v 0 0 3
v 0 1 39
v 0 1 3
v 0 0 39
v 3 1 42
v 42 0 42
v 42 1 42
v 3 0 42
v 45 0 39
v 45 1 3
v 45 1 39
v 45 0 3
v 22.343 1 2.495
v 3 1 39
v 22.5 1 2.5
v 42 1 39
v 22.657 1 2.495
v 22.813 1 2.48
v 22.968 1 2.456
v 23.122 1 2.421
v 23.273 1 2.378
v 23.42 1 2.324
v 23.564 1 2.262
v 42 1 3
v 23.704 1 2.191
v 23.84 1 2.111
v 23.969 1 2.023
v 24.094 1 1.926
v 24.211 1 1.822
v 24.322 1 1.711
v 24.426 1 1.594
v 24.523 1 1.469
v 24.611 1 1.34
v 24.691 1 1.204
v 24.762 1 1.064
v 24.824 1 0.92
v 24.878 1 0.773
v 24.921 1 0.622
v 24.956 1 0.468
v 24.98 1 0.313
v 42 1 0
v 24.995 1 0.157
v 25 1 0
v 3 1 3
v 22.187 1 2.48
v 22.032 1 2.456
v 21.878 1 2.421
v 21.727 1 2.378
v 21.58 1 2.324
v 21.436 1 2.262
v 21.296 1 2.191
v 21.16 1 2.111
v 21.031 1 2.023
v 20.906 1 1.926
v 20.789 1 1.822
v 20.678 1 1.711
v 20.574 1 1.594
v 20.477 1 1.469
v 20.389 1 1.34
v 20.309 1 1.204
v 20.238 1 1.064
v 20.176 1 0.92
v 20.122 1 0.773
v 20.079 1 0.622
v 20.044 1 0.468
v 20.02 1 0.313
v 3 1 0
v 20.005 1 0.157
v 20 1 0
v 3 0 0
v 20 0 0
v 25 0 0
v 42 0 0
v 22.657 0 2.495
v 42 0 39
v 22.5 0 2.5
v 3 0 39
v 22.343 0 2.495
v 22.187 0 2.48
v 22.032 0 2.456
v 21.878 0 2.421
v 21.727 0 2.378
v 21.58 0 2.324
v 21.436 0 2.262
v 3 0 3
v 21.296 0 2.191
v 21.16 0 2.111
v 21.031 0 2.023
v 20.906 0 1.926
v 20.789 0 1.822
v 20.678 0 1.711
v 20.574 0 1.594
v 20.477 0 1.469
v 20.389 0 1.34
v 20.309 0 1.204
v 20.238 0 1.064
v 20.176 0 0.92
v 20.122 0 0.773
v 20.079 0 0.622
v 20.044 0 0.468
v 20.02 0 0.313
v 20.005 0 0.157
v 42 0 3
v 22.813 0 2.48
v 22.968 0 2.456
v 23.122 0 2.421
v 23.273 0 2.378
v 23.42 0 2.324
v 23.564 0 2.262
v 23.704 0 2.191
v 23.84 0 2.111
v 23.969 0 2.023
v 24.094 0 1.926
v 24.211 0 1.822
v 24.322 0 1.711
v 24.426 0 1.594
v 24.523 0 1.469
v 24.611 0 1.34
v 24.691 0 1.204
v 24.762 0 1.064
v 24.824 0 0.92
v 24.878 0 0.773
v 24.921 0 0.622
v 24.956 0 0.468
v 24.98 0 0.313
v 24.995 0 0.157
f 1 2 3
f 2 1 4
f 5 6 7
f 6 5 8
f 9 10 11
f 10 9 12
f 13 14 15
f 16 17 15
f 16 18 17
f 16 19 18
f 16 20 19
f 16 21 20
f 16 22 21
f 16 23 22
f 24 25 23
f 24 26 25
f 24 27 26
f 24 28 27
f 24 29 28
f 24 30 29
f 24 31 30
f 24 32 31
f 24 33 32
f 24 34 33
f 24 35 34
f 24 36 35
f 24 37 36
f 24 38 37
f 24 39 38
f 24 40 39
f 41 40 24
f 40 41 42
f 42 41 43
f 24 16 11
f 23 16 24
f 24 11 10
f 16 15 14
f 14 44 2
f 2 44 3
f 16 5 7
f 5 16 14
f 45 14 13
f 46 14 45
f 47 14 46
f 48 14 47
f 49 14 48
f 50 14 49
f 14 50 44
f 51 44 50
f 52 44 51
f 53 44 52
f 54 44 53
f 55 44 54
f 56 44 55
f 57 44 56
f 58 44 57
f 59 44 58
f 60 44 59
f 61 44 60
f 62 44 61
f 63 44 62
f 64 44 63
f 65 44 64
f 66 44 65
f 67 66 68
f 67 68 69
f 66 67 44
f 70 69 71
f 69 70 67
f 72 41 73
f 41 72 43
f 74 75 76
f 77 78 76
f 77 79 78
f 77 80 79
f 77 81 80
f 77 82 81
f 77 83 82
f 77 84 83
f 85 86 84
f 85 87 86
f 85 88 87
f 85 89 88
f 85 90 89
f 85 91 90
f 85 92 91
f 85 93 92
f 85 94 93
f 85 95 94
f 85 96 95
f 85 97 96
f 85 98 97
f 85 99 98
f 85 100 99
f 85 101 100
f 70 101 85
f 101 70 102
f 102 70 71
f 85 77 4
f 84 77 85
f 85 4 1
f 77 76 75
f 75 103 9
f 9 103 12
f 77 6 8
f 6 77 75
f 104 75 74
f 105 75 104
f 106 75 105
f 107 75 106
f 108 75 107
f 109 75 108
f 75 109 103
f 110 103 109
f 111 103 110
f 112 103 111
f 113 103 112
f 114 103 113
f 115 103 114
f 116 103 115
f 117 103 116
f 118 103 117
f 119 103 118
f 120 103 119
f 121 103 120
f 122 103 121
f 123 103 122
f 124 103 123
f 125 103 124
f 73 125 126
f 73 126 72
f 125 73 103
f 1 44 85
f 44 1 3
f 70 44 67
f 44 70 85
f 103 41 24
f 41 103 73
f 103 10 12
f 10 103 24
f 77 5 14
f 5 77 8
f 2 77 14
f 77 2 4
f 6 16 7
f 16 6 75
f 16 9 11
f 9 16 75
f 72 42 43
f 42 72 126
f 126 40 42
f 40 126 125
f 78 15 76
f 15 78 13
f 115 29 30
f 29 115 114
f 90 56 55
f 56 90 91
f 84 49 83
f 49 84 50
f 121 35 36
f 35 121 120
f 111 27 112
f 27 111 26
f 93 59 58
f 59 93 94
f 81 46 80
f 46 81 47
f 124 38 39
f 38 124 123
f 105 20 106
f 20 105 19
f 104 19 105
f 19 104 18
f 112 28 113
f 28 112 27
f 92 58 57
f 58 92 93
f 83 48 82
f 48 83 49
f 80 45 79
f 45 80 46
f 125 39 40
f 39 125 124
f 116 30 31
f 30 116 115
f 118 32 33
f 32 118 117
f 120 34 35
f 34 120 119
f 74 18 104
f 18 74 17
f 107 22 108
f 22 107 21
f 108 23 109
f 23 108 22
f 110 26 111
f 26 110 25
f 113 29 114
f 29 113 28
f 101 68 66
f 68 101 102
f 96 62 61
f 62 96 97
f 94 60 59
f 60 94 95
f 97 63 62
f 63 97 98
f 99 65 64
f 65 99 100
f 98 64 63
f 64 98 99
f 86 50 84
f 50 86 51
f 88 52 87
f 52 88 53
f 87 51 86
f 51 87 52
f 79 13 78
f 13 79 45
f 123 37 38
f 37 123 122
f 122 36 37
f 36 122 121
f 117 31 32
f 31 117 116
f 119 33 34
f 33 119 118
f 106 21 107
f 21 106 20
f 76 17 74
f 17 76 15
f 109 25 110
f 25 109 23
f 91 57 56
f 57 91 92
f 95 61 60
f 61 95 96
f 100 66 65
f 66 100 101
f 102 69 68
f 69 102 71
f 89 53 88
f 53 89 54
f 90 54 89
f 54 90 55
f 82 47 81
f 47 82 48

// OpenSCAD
$fn=100;
difference()
{
translate([0,0,0])cube([45,1,42]);
color("black")translate([-1,-1,-1])cube([4,3,4]);
color("black")translate([42,-1,-1])cube([4,3,4]);
color("black")translate([-1,-1,39])cube([4,3,4]);
color("black")translate([42,-1,39])cube([4,3,4]);
color("blue")translate([22.5,2,0])rotate([90,0,0])cylinder(3,2.5,2.5);
}
